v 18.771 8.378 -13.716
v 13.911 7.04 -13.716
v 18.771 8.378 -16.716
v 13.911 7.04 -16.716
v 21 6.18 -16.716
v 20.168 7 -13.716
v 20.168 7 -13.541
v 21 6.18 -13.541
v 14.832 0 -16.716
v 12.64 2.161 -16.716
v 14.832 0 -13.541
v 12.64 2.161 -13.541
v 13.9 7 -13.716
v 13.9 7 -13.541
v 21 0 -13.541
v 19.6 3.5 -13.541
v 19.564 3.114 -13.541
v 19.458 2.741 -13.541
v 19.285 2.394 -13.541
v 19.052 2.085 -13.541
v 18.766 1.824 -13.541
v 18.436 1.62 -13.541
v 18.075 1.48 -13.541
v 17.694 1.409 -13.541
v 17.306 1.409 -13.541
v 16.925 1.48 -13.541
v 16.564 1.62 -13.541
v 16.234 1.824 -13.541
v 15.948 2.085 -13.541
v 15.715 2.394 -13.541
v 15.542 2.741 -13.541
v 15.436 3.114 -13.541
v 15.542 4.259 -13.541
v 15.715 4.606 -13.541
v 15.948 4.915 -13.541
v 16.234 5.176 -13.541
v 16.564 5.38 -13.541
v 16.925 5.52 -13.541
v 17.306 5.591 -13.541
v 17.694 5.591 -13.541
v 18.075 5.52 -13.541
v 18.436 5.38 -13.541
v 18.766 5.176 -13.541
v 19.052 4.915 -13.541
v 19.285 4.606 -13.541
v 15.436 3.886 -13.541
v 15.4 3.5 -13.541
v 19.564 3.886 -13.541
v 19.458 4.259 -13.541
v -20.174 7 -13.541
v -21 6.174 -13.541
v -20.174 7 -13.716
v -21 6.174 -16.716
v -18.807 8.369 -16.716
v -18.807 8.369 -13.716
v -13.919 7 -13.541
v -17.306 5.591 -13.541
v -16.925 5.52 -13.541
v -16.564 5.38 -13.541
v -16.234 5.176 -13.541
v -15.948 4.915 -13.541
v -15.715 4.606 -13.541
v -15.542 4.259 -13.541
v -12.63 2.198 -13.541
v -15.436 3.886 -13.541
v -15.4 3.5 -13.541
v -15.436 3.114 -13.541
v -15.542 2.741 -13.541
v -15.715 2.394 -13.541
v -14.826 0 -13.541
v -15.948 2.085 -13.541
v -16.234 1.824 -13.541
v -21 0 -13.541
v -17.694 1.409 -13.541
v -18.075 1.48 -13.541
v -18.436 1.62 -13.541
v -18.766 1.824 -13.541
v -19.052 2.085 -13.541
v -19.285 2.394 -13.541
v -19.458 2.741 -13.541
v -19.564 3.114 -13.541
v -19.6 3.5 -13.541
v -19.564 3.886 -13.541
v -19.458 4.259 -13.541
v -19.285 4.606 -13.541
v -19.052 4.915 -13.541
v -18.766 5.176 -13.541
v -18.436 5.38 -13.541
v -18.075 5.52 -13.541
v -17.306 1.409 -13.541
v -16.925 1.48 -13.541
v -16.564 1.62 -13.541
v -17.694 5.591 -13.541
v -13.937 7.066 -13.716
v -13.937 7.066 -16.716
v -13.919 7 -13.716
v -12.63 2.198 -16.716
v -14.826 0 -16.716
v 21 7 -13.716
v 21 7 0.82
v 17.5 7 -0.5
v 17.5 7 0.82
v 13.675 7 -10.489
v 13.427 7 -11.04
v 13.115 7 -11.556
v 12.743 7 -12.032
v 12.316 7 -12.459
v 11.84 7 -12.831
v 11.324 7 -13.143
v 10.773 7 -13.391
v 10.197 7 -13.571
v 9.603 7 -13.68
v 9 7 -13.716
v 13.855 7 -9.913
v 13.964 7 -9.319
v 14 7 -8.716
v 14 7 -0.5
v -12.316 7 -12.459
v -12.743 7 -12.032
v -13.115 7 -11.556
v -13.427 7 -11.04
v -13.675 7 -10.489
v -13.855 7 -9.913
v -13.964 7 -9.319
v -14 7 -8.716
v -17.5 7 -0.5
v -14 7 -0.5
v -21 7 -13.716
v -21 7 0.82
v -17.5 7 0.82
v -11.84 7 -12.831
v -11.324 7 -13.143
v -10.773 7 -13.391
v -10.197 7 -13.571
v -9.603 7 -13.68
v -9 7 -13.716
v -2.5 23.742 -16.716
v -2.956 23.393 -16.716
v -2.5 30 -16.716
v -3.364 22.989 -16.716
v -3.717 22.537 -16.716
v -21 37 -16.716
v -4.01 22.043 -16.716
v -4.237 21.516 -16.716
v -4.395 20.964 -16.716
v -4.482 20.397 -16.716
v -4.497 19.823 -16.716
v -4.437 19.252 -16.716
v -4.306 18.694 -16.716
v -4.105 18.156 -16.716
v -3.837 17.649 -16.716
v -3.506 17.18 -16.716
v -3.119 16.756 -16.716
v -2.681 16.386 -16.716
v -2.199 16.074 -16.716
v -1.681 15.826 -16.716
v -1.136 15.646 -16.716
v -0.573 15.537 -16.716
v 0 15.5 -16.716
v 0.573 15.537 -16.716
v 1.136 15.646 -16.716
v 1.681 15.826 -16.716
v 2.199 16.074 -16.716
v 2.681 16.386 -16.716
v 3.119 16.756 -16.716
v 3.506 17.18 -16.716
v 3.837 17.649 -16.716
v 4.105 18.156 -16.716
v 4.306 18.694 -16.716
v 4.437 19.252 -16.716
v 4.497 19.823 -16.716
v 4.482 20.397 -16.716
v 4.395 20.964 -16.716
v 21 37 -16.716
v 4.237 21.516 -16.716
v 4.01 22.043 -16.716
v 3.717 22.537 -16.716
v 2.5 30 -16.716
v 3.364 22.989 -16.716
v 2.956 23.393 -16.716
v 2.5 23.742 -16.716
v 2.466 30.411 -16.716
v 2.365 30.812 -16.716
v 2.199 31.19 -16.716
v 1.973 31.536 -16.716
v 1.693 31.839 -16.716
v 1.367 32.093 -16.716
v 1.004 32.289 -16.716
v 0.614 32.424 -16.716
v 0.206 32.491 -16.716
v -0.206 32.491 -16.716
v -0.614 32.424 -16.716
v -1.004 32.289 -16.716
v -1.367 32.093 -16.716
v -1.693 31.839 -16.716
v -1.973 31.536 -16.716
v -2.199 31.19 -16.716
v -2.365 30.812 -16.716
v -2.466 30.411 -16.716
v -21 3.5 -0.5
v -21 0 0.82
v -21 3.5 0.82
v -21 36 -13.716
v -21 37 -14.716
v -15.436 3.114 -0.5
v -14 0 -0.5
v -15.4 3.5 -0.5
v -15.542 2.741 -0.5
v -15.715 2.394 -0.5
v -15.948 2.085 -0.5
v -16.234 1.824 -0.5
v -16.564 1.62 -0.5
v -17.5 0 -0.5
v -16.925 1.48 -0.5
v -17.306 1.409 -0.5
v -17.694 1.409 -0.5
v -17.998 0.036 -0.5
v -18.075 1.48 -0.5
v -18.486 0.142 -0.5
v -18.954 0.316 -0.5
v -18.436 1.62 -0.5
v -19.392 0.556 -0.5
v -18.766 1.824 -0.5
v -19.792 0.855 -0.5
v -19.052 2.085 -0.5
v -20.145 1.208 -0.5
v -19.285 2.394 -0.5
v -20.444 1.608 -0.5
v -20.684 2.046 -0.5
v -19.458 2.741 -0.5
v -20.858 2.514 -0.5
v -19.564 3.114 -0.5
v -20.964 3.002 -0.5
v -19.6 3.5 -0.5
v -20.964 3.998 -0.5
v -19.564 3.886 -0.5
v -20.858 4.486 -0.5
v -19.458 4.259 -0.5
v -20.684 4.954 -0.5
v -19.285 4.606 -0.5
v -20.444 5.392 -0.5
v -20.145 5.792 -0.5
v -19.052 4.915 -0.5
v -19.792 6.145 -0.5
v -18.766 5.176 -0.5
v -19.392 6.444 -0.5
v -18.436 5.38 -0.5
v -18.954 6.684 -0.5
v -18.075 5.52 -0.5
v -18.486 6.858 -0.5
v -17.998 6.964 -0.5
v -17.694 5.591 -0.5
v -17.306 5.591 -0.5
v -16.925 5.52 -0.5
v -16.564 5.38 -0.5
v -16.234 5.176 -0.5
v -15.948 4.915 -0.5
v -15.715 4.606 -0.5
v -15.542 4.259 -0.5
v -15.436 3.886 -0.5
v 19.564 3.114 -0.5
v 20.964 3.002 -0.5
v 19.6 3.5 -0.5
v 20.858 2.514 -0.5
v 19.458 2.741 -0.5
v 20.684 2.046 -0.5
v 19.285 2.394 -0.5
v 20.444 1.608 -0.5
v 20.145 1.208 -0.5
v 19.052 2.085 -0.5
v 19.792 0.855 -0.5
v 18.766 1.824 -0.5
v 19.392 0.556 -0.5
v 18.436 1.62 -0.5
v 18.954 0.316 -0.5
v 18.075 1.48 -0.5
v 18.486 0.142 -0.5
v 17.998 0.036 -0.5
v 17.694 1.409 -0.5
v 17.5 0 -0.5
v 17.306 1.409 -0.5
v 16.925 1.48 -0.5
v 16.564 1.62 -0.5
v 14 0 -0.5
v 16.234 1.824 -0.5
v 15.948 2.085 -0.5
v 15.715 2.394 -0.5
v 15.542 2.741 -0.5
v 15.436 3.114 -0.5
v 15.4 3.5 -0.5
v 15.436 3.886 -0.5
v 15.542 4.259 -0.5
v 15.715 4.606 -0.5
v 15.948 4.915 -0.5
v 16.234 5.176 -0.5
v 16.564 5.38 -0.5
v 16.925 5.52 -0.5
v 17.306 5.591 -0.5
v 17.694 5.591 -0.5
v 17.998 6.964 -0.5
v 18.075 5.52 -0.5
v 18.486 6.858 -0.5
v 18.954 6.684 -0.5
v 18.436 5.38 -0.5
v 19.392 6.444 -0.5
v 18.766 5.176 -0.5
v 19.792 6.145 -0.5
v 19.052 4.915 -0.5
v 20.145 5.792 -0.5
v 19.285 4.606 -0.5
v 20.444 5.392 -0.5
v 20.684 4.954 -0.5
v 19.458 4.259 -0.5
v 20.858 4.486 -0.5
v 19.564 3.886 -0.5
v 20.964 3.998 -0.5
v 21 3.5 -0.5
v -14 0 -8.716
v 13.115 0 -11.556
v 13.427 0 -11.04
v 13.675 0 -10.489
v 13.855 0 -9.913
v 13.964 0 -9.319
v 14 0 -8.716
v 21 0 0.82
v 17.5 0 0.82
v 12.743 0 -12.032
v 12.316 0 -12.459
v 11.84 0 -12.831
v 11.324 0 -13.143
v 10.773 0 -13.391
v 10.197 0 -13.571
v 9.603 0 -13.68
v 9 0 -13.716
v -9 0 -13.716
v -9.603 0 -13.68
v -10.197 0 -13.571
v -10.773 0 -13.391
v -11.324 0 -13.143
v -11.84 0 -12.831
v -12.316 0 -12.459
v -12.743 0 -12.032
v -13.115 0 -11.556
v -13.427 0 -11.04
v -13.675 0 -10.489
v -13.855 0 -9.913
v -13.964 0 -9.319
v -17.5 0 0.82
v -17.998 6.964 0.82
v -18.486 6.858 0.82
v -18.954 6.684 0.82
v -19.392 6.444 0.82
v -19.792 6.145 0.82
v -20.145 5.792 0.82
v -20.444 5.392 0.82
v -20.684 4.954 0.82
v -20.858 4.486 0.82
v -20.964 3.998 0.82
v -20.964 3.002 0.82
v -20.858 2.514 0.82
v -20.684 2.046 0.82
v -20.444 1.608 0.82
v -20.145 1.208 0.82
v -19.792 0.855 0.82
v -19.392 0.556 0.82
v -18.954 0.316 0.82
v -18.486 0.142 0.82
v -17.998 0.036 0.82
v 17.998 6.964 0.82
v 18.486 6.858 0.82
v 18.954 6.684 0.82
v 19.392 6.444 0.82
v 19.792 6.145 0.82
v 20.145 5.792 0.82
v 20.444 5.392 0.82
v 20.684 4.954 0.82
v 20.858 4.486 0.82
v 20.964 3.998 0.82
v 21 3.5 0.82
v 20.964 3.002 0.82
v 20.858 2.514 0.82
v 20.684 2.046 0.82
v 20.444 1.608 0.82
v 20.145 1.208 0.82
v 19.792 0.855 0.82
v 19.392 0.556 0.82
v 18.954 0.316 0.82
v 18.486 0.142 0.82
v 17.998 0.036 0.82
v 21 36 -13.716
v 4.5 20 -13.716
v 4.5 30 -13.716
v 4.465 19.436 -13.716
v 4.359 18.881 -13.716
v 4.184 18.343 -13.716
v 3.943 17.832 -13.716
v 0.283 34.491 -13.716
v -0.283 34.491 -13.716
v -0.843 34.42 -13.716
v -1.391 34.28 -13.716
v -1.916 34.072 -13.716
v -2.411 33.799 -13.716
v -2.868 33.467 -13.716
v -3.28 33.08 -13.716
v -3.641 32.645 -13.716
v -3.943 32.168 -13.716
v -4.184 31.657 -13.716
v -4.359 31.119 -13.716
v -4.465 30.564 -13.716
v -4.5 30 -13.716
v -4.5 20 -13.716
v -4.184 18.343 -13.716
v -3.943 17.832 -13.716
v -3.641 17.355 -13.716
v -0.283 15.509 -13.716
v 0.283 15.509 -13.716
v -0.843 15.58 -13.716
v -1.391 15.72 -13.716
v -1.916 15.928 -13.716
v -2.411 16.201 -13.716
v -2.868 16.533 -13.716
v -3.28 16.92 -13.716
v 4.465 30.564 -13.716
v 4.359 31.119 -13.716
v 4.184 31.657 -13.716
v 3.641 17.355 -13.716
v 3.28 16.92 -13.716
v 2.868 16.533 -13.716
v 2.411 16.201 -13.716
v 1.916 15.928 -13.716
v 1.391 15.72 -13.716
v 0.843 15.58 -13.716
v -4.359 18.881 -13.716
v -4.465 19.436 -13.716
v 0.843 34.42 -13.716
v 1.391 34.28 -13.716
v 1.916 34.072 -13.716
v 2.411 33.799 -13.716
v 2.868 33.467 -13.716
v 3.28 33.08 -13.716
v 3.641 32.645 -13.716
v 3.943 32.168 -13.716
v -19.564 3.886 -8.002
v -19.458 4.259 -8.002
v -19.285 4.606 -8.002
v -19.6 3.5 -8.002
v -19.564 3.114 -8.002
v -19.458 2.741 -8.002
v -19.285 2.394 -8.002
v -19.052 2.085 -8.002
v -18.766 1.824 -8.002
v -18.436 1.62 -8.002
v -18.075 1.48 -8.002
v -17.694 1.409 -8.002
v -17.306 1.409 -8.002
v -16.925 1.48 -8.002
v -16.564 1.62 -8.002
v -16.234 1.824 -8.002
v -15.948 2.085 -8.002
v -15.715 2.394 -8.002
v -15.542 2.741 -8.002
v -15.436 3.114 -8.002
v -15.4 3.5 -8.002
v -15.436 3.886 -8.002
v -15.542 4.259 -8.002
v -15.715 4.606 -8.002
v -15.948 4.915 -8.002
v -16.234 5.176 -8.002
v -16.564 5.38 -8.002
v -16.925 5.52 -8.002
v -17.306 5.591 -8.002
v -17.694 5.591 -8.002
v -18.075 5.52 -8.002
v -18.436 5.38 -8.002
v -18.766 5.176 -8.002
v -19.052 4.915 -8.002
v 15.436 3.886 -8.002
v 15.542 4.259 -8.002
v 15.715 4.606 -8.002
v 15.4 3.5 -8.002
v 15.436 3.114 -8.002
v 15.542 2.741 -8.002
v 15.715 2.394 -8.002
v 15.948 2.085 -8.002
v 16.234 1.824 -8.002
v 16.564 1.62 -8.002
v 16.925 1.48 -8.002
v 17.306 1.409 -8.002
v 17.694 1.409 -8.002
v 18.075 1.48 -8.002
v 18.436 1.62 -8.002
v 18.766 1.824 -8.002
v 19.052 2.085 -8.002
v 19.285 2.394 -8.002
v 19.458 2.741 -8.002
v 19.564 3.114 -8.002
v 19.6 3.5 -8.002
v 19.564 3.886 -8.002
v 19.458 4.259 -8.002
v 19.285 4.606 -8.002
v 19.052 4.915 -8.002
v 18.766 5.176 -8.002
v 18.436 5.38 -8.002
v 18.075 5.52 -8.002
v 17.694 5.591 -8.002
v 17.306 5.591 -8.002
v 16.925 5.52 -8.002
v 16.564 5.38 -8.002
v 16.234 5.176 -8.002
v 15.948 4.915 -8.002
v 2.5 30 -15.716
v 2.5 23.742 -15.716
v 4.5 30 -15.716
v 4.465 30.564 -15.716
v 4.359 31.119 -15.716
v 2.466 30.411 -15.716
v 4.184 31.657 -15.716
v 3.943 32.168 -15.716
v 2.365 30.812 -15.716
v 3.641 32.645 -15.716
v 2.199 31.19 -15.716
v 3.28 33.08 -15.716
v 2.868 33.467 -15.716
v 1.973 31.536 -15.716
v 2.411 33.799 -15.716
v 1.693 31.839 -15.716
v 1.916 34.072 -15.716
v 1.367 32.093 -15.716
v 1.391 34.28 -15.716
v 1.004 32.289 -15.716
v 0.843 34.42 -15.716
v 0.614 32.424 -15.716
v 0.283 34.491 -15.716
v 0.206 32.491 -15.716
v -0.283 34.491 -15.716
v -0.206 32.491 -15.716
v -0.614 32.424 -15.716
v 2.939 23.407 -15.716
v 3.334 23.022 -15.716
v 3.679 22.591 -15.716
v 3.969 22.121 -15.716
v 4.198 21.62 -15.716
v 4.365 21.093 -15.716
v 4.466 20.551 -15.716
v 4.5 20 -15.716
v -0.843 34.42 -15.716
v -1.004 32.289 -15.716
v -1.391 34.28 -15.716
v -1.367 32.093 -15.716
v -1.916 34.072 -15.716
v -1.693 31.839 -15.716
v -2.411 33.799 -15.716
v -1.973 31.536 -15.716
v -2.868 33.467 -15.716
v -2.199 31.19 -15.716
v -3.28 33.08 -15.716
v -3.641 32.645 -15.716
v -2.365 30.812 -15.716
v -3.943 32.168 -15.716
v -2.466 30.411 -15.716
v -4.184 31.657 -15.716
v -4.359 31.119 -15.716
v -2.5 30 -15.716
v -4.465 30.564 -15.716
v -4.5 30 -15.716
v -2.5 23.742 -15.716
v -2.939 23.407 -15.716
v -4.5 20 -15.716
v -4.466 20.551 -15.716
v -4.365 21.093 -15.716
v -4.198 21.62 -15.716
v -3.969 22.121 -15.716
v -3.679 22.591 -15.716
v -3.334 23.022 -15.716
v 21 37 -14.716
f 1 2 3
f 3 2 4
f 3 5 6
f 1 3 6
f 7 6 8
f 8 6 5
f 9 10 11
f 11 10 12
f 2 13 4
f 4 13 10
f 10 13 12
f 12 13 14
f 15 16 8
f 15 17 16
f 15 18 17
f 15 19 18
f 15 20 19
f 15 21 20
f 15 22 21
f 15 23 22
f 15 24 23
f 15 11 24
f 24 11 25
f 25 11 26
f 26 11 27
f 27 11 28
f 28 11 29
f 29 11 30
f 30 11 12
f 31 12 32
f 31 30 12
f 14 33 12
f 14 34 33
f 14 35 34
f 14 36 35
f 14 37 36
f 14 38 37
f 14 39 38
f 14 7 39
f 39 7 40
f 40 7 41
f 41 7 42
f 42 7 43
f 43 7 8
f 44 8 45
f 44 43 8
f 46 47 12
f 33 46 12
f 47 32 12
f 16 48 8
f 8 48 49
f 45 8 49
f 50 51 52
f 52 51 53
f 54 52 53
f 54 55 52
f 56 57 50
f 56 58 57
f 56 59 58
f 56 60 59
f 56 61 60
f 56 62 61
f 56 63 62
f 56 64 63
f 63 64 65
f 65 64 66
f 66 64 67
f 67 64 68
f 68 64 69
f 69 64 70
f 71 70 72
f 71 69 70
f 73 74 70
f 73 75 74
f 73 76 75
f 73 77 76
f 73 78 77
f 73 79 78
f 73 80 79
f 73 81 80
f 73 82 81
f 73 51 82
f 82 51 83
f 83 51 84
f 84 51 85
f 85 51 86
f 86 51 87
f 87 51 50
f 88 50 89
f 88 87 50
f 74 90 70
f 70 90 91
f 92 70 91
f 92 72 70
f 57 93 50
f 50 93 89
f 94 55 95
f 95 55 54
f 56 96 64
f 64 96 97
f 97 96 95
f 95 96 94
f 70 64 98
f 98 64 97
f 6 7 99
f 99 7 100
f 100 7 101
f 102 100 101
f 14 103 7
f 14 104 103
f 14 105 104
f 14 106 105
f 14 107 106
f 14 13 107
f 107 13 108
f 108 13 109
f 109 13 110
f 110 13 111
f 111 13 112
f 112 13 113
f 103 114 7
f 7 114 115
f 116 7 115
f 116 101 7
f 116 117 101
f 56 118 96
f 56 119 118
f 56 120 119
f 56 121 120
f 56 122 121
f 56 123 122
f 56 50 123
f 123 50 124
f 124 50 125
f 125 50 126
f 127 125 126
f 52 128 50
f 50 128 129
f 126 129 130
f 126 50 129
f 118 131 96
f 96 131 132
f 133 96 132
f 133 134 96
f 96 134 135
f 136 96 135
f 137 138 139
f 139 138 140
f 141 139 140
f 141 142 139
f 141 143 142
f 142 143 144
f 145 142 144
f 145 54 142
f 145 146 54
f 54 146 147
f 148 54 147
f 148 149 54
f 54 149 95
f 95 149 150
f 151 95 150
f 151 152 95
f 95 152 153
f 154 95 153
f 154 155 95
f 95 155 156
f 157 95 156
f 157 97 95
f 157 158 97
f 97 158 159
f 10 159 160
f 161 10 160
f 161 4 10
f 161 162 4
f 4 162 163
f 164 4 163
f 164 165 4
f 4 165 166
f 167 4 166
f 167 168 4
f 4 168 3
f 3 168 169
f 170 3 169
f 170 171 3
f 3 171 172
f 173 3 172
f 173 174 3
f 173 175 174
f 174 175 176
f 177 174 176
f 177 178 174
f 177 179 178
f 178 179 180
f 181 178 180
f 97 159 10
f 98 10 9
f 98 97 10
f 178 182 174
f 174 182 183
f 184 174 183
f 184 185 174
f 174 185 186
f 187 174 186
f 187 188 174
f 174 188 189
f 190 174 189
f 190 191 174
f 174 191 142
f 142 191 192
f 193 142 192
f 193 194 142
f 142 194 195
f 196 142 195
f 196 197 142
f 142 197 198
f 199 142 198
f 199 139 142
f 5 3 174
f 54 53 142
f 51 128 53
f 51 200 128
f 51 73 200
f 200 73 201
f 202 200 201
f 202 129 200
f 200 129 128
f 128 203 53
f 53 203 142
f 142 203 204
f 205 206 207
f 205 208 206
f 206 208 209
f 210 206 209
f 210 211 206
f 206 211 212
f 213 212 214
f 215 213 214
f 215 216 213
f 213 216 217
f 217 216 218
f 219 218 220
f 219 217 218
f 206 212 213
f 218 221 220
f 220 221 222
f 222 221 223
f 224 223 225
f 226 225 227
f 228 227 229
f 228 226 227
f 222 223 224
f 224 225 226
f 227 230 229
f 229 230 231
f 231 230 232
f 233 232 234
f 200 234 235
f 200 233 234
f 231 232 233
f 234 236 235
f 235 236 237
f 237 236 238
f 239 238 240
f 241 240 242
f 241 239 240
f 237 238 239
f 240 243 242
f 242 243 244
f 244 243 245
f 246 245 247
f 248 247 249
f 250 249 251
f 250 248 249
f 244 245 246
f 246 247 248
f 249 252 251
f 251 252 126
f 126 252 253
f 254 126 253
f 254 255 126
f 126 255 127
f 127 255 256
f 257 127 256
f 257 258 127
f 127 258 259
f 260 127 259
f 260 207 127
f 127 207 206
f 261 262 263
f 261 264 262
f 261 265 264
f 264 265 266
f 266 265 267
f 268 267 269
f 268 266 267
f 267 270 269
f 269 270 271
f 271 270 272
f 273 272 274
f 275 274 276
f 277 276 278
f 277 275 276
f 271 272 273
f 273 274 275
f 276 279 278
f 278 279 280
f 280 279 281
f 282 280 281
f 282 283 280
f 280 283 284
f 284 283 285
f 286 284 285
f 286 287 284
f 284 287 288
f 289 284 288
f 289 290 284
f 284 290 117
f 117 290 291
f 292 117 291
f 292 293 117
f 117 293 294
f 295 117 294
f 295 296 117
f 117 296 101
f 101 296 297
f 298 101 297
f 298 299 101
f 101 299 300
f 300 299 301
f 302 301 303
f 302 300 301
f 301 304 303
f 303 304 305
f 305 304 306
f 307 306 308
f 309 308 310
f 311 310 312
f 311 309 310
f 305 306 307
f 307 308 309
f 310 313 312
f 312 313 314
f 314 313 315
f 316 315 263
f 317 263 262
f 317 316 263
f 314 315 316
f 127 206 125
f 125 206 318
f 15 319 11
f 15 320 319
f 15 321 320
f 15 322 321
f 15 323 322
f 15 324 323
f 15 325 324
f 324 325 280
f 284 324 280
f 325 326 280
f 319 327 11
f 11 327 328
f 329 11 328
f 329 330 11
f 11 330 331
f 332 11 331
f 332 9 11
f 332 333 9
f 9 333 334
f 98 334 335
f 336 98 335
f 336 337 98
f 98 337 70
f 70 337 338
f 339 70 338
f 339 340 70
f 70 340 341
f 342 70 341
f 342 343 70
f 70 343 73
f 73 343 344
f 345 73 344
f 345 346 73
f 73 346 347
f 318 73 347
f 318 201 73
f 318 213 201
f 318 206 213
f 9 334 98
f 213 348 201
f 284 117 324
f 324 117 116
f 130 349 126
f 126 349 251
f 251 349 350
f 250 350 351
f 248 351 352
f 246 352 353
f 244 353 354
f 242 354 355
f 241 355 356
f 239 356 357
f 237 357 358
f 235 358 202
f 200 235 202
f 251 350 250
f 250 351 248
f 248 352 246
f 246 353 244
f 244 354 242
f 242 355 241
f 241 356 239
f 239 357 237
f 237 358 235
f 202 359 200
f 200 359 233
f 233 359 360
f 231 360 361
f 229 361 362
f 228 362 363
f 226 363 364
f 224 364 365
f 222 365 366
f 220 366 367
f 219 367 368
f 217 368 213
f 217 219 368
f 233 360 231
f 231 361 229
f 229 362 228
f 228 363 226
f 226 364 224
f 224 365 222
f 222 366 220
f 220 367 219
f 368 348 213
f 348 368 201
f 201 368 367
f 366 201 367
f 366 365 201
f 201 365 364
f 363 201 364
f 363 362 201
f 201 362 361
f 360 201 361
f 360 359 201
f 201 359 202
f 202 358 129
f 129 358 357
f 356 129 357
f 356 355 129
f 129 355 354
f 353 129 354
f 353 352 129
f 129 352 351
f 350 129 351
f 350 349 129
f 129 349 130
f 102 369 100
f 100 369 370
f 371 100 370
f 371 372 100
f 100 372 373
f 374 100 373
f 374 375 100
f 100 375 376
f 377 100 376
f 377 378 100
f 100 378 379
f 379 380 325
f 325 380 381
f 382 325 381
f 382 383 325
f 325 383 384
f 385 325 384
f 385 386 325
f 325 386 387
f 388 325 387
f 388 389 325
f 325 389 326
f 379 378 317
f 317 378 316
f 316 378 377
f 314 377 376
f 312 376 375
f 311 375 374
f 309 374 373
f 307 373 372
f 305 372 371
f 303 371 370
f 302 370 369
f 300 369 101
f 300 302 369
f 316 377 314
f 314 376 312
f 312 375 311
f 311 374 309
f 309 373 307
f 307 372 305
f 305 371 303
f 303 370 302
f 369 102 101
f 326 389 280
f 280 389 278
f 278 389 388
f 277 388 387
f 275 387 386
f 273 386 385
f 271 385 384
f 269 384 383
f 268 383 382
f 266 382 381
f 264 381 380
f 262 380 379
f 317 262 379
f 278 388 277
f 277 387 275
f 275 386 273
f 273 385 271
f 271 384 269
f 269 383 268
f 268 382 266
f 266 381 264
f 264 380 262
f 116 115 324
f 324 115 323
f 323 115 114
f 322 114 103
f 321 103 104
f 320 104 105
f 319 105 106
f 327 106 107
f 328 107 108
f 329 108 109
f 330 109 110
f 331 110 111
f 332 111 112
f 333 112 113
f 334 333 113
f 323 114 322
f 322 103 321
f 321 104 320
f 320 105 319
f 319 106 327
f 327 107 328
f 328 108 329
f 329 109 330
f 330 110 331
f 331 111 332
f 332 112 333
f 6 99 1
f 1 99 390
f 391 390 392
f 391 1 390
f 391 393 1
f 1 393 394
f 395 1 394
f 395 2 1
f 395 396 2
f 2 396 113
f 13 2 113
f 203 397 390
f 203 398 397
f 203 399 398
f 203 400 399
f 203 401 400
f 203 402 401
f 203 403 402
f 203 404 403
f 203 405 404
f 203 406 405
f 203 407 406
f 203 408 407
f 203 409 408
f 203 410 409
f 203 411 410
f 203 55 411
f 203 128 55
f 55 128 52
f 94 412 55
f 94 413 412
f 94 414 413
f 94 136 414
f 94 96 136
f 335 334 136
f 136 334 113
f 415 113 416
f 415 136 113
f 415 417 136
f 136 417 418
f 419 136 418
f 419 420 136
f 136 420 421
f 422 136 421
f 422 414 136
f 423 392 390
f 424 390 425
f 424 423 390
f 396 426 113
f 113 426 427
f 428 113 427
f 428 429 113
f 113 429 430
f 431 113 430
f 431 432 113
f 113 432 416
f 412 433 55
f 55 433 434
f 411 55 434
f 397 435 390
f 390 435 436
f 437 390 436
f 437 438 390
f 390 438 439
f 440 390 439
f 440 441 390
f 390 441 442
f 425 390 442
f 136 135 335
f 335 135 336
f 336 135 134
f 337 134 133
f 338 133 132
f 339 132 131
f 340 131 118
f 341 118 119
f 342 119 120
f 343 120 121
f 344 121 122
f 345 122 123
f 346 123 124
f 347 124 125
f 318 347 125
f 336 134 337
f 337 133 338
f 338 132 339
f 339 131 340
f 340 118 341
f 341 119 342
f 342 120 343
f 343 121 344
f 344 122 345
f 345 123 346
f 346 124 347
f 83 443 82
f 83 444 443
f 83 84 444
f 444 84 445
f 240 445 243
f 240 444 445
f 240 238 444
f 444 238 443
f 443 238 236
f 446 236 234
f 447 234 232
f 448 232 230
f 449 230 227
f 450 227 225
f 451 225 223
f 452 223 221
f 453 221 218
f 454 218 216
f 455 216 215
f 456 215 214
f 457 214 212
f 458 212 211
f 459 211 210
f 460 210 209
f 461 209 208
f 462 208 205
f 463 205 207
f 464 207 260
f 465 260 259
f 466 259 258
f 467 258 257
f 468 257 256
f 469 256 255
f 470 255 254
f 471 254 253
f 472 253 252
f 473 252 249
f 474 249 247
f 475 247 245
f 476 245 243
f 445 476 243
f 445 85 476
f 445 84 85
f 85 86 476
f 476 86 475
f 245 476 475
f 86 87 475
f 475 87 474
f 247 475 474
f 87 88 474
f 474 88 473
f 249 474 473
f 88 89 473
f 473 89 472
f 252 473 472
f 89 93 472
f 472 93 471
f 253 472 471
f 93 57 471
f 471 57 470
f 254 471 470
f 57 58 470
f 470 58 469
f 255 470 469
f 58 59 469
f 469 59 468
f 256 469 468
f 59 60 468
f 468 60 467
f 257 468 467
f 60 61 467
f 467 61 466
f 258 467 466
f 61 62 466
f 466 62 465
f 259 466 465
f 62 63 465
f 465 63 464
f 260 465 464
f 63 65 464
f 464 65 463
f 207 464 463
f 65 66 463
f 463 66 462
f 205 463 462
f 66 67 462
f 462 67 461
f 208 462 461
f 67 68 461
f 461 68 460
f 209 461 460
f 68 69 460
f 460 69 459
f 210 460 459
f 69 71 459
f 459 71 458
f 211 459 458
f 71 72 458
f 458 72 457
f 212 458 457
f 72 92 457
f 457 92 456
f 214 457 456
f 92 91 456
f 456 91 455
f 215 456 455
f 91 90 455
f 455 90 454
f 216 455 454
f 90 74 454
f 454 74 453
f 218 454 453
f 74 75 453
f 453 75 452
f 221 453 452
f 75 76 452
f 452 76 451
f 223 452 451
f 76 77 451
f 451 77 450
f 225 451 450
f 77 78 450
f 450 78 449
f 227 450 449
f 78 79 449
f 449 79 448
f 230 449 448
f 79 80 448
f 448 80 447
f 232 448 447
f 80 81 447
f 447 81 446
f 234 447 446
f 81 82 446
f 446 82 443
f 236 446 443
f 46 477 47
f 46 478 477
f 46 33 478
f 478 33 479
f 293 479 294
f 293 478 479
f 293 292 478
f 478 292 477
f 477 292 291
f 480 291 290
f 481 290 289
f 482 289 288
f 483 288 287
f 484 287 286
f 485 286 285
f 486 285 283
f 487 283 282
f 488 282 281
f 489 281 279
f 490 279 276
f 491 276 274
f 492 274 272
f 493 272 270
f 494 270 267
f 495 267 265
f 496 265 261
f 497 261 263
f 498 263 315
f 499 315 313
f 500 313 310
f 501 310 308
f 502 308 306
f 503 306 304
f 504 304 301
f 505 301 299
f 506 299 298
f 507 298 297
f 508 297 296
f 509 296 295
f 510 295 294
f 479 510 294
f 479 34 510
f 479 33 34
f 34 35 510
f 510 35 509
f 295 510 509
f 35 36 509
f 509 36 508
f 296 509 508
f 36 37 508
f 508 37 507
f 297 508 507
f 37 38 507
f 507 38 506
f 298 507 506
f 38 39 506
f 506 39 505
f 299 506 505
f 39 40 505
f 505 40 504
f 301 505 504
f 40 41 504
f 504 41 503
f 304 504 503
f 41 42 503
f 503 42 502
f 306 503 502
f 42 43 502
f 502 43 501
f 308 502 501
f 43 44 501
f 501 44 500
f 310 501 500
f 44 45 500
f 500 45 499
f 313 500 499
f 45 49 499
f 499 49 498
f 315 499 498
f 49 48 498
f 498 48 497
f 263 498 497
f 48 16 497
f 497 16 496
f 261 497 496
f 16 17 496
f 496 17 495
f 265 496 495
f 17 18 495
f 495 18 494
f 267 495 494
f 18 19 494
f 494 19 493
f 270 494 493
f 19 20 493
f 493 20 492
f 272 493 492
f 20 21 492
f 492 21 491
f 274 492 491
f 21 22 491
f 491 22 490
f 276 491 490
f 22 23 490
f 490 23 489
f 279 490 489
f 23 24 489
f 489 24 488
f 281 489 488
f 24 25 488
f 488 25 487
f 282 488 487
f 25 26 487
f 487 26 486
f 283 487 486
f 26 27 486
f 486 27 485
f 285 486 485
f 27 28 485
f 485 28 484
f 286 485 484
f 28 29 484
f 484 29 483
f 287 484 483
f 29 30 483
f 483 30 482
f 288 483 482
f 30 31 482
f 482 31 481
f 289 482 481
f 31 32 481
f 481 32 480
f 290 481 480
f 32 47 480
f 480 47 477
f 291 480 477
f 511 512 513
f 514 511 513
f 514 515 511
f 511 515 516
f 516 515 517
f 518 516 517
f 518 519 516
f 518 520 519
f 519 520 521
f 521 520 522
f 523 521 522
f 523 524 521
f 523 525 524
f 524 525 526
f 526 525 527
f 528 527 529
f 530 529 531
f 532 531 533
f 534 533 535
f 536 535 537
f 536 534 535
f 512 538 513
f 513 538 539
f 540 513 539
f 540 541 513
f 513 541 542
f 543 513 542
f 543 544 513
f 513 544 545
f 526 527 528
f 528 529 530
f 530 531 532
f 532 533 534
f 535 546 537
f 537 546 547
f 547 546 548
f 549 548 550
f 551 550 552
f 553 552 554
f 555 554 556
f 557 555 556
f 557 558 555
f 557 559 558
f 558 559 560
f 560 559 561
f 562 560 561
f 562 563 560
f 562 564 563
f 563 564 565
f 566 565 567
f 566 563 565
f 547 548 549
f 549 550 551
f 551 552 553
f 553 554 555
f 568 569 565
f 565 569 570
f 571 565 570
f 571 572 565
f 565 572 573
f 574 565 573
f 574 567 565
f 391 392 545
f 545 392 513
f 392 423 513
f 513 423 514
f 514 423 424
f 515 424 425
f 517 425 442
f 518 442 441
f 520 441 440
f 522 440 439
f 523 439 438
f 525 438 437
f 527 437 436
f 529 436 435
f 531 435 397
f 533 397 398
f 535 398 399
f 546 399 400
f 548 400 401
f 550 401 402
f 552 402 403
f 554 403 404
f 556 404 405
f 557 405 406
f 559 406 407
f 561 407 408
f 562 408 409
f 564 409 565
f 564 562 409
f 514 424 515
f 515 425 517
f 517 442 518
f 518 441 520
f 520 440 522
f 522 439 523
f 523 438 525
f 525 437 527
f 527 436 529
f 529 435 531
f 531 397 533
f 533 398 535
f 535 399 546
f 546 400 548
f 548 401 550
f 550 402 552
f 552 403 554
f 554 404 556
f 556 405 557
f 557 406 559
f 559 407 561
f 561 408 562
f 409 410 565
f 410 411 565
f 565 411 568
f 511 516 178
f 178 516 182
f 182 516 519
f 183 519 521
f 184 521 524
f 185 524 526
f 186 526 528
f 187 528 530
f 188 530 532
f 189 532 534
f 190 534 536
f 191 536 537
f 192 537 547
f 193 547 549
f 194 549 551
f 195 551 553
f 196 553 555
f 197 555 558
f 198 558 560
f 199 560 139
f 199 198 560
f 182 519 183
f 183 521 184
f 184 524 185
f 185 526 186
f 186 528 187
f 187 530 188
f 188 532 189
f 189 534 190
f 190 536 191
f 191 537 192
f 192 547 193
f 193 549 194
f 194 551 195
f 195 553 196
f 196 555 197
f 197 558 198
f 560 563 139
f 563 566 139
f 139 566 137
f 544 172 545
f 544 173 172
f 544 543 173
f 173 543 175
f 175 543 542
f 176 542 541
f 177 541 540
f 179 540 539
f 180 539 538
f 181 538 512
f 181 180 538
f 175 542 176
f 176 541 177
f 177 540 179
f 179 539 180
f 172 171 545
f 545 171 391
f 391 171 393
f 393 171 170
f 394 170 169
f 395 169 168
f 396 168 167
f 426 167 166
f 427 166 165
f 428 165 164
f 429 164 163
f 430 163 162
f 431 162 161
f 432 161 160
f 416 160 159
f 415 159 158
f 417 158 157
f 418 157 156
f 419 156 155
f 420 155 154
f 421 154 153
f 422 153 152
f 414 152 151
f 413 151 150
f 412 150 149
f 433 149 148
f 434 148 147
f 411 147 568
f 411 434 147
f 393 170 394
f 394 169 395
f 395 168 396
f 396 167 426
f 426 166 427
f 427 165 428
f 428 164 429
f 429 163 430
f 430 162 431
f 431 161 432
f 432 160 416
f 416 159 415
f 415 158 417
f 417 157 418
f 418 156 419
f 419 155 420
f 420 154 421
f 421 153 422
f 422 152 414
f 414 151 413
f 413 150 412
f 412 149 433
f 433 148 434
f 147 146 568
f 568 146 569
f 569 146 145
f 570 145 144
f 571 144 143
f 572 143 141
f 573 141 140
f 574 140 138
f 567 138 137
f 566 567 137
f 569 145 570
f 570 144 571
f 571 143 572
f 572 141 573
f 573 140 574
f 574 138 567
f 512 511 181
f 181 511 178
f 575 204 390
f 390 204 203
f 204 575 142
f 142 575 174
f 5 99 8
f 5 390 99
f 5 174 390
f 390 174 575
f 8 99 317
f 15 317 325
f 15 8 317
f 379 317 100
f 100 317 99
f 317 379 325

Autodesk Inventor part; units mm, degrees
ref_plane "YZ Plane" through (0, 0, 0) normal (1, 0, 0) x (0, 1, 0)
ref_plane "XZ Plane" through (0, 0, 0) normal (0, 1, 0) x (-1, 0, 0)
sketch "Sketch1" plane through (0, 0, 0) normal (0, 0, 1) x (1, 0, 0)
  line L0 (-14, 0) -> (-21, 0)
  line L1 (-21, 0) -> (-21, 7)
  line L2 (-21, 7) -> (-14, 7)
  line L3 (-14, 7) -> (-14, 0)
  line L4 (14, 0) -> (21, 0)
  line L5 (21, 0) -> (21, 7)
  line L6 (21, 7) -> (14, 7)
  line L7 (14, 7) -> (14, 0)
  point P0 (0, 0)
  dimension "d0" = 7
  dimension "d2" = 7
  dimension "d3" = 42
  dimension "d4" = 7
  dimension "d5" = 7
  dimension "d6" = 14
extrude "Extrusion1" add sketch "Sketch1" against normal blind 13.716
sketch "Sketch2" plane through (0, 0, -13.716) normal (0, 0, -1) x (-1, 0, 0)
  line L0 (14, 0) -> (21, 0) projected
  line L1 (21, 0) -> (21, 7) projected
  line L2 (21, 7) -> (14, 7) projected
  line L3 (14, 7) -> (14, 0) projected
  line L4 (21, 0) -> (-21, 0)
  line L5 (-21, 0) -> (-21, 37)
  line L6 (-21, 37) -> (21, 37)
  line L7 (21, 37) -> (21, 0)
  line L8 (-14, 7) -> (-21, 7) projected
  point P0 (0, 0)
  dimension "d44" = 30
extrude "Extrusion2" add sketch "Sketch2" along normal blind 3
chamfer "Chamfer1" distance 1 angle 45 1 edges at (0, 37, -13.716)
sketch "Sketch3" plane through (0, 0, -13.716) normal (0, 0, 1) x (1, 0, 0)
  line L0 (-21, 36) -> (21, 36) projected
  line L1 (14, 0) -> (-14, 0) projected
  line L2 (0, 0) -> (0, 36)
  circle A0 centre (0, 20) radius 4.5
  circle A1 centre (0, 30) radius 2.5
  line L3 (-2.5, 30) -> (-2.5, 16.2583)
  line L4 (2.5, 30) -> (2.5, 16.2583)
  dimension "d16" = 9
  dimension "d18" = 5
  dimension "d19" = 20
  dimension "d45" = 10
extrude "Extrusion3" cut sketch "Sketch3" against normal through all
sketch "Sketch4" plane through (0, 0, -13.716) normal (0, 0, 1) x (1, 0, 0)
  arc A0 (-2.5, 23.7417) -> (2.5, 23.7417) centre (0, 20) ccw projected
  line L0 (-2.5, 23.7417) -> (-2.5, 30) projected
  arc A1 (2.5, 30) -> (-2.5, 30) centre (0, 30) ccw projected
  line L1 (2.5, 30) -> (2.5, 23.7417) projected
  line L2 (21, 36) -> (21, 7) projected
  circle A2 centre (0, 30) radius 4.5
  line L3 (-4.5, 30) -> (-4.5, 20)
  line L4 (4.5, 20) -> (4.5, 30)
  point P0 (0, 0)
  dimension "d23" = 9
extrude "Extrusion4" cut sketch "Sketch4" against normal blind 2
sketch "Sketch5" plane through (0, 0, 0) normal (0, 0, 1) x (1, 0, 0)
  line L0 (-14, 7) -> (-14, 0) projected
  line L1 (-21, 0) -> (-21, 7) projected
  line L2 (14, 0) -> (21, 0) projected
  line L3 (21, 0) -> (21, 7) projected
  line L4 (21, 7) -> (14, 7) projected
  line L5 (14, 7) -> (14, 0) projected
  line L6 (-21, 3.5) -> (-14, 3.5)
  line L7 (14, 3.5) -> (21, 3.5)
  point P0 (0, 0)
  point P1 (-17.5, 3.5)
  point P2 (17.5, 3.5)
  dimension "d26" = 35
  dimension "d28" = 3.5
  dimension "d29" = 3.5
hole "Hole1" at (-17.5, 3.5, 0) at (17.5, 3.5, 0) direction (0, 0, -1) diameter 4.2 end through all
fillet "Fillet1" radius 5 2 edges at (-14, 3.5, -13.716) (14, 3.5, -13.716)
sketch "Sketch6" plane through (0, 0, 0) normal (0, 0, 1) x (1, 0, 0)
  circle A0 centre (-17.5, 3.5) radius 2.1 projected
  line L0 (-14, 0) -> (-21, 0) projected
  line L1 (-14, 7) -> (-14, 0) projected
  line L2 (-21, 7) -> (-14, 7) projected
  line L3 (-21, 0) -> (-21, 7) projected
  circle A1 centre (17.5, 3.5) radius 2.1 projected
  line L4 (14, 0) -> (21, 0) projected
  line L5 (21, 0) -> (21, 7) projected
  line L6 (21, 7) -> (14, 7) projected
  line L7 (14, 7) -> (14, 0) projected
  arc A2 (-17.5, 7) -> (-17.5, 0) centre (-17.5, 3.5) ccw
  arc A3 (17.5, 0) -> (17.5, 7) centre (17.5, 3.5) ccw
  line L8 (17.5, 7) -> (21, 7)
  line L9 (21, 7) -> (21, 0)
  line L10 (21, 0) -> (17.5, 0)
  line L11 (-17.5, 0) -> (-21, 0)
  line L12 (-21, 0) -> (-21, 7)
  line L13 (-17.5, 7) -> (-21, 7)
  point P0 (0, 0)
ref_plane "Work Plane1" through (-21, 0, 0.82) normal (0, 0, -1) x (0, 1, 0)
extrude "Extrusion5" add sketch "Sketch6" along normal up to surface (0.82 mm away) contours L0 L3 A2 | L3 L2 A2 | A3 L5 L4 | A3 L6 L5
sketch "Sketch7" plane through (0, 0, 0) normal (0, 0, 1) x (1, 0, 0)
  arc A0 (-21, 3.5) -> (-17.5, 0) centre (-17.5, 3.5) ccw projected
  line L0 (-14, 0) -> (-17.5, 0) projected
  line L1 (-14, 7) -> (-14, 0) projected
  line L2 (-17.5, 7) -> (-14, 7) projected
  arc A1 (-17.5, 7) -> (-21, 3.5) centre (-17.5, 3.5) ccw projected
  circle A2 centre (-17.5, 3.5) radius 2.1 projected
  circle A3 centre (17.5, 3.5) radius 2.1 projected
  arc A4 (17.5, 0) -> (21, 3.5) centre (17.5, 3.5) ccw projected
  arc A5 (21, 3.5) -> (17.5, 7) centre (17.5, 3.5) ccw projected
  line L3 (17.5, 7) -> (14, 7) projected
  line L4 (14, 7) -> (14, 0) projected
  line L5 (14, 0) -> (17.5, 0) projected
  point P0 (0, 0)
extrude "Extrusion6" cut sketch "Sketch7" against normal blind 0.5
sketch "Sketch8" plane through (0, 0, -16.716) normal (0, 0, -1) x (-1, 0, 0)
  circle A0 centre (17.5, 3.5) radius 2.1 projected
  circle A1 centre (-17.5, 3.5) radius 2.1 projected
  line L0 (-12.64, 2.1615) -> (-13.9108, 7.0396) projected
  line L1 (-16.2292, -1.3782) -> (-12.64, 2.1615) projected
  line L2 (-21.0892, -0.0396) -> (-16.2292, -1.3782) projected
  line L3 (-22.36, 4.8385) -> (-21.0892, -0.0396) projected
  line L4 (-18.7708, 8.3782) -> (-22.36, 4.8385) projected
  line L5 (-13.9108, 7.0396) -> (-18.7708, 8.3782) projected
  circle A2 centre (-17.5, 3.5) radius 1.6532 projected
  line L6 (21.0628, -0.0662) -> (22.3699, 4.8024) projected
  line L7 (16.1929, -1.3686) -> (21.0628, -0.0662) projected
  line L8 (12.6301, 2.1976) -> (16.1929, -1.3686) projected
  line L9 (13.9372, 7.0662) -> (12.6301, 2.1976) projected
  line L10 (18.8071, 8.3686) -> (13.9372, 7.0662) projected
  line L11 (22.3699, 4.8024) -> (18.8071, 8.3686) projected
  circle A3 centre (17.5, 3.5) radius 1.6532 projected
  point P0 (0, 0)
extrude "Extrusion7" cut sketch "Sketch8" against normal blind 3.175 contours L1 L2 L3 L4 L5 L0 | L7 L8 L9 L10 L11 L6
equation "\"d7\" = StretcherDepth"
equation "\"d28\" = d29"
equation "\"StretcherDepth\" = 13.716"
properties part number "MotorClipV4" material "ABS Plastic"
